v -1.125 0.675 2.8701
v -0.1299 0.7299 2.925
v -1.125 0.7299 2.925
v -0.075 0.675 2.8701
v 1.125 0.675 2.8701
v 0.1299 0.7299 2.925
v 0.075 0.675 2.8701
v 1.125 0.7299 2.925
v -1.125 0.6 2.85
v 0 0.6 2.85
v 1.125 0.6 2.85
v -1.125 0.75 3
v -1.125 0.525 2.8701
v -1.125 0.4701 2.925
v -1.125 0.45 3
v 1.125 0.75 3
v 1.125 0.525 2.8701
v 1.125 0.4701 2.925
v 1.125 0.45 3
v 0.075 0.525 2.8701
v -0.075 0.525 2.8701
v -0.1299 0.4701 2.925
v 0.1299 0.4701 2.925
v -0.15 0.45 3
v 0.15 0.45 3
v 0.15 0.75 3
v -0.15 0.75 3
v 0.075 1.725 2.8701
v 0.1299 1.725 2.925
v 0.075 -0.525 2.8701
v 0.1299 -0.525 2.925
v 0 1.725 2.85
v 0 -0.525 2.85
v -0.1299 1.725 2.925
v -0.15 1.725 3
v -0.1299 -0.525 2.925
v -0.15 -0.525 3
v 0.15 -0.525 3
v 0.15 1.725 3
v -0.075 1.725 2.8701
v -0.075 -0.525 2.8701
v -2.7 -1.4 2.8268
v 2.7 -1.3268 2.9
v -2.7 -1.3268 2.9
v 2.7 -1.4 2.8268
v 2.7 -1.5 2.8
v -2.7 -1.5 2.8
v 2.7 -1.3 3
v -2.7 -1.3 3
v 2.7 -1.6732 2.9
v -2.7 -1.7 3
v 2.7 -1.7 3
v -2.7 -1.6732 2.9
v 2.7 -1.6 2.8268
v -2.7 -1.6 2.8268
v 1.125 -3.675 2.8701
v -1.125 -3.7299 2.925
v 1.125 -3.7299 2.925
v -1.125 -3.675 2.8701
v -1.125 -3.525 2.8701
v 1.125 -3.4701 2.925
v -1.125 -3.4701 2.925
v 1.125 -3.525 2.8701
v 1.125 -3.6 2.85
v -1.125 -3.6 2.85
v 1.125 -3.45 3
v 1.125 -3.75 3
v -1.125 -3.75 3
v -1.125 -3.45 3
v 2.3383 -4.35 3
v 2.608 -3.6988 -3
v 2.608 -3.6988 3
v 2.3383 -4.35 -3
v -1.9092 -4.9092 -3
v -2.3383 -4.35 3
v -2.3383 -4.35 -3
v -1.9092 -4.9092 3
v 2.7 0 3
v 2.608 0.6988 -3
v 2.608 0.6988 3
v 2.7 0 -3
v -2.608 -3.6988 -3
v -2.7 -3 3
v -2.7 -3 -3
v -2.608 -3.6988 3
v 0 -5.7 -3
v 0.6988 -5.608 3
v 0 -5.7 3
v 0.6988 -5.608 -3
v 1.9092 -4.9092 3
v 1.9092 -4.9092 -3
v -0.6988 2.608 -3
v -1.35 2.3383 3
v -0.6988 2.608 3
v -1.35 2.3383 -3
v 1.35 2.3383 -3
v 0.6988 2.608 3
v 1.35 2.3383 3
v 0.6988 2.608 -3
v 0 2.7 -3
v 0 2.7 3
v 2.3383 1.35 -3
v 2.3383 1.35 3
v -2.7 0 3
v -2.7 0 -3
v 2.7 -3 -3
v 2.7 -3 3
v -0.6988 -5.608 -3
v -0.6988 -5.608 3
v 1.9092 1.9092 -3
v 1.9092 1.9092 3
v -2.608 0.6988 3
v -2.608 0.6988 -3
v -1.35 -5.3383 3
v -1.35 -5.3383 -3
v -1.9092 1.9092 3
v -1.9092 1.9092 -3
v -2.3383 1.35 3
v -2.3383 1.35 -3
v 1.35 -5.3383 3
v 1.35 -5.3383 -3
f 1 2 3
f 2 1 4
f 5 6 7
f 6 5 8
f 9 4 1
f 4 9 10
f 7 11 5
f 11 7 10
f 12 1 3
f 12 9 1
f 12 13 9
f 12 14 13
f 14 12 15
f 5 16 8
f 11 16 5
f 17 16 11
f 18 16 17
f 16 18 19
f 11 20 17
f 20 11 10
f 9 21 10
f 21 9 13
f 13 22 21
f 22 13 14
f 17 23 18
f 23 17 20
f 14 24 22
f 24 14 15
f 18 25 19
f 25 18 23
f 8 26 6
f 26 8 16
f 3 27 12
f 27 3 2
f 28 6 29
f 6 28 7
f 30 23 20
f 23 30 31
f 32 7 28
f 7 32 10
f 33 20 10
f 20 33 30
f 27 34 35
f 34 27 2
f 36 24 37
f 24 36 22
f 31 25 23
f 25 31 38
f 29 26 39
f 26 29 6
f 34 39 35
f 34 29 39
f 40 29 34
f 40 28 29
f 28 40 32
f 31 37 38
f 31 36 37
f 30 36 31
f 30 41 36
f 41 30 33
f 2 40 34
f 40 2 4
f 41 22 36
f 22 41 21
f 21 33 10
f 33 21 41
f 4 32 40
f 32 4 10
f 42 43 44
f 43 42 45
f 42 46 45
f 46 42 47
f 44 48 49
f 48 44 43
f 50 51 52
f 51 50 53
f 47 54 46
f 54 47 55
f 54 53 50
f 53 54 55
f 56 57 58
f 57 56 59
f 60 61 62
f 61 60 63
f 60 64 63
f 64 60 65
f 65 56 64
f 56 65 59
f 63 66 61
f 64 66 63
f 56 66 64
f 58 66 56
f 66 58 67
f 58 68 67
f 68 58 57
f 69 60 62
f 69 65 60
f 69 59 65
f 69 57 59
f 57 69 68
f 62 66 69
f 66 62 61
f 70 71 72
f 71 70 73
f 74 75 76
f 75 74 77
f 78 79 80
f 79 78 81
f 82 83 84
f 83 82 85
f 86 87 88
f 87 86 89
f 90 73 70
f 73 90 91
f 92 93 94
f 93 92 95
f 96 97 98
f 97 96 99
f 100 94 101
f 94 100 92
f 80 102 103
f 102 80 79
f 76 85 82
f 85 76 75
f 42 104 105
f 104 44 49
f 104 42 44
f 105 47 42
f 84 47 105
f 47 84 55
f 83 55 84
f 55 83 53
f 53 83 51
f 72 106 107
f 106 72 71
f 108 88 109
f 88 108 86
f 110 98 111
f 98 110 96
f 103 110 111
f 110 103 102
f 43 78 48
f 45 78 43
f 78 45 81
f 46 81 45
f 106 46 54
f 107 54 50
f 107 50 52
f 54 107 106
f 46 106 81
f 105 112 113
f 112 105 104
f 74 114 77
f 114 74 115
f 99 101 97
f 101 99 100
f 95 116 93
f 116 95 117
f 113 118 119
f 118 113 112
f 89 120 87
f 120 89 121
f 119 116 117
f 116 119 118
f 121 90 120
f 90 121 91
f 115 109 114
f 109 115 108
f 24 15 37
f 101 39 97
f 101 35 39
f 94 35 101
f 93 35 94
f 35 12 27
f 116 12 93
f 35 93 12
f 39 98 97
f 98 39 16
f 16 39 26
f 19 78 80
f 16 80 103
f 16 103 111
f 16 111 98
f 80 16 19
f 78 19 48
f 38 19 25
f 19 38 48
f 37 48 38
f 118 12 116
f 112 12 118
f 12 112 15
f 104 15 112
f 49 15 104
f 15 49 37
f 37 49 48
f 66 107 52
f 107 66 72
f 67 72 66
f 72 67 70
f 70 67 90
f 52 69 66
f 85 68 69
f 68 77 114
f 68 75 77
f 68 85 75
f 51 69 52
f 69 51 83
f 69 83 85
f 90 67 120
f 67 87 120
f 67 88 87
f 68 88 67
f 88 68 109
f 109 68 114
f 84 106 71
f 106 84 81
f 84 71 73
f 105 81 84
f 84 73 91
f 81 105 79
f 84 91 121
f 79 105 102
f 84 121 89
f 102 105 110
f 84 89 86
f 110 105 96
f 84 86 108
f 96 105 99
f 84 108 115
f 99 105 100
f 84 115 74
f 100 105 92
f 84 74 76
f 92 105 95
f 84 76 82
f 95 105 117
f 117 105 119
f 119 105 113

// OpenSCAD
$side_button_radius = 5.4 / 2;
$button_depth = 6;

$full_length = ($side_button_radius * 2) + 3;
$cut_radius = 0.15;

module cutouts(){
  rotate([0, 90, 0]){
    cylinder(h = 10, r = 0.2, $fn = 12, center=true);

    translate([0,-($full_length / 4),0])
      cylinder(h = $side_button_radius / 1.2, r = $cut_radius, $fn = 12, center=true);

    translate([0,($full_length / 4),0]){
      cylinder(h = $side_button_radius / 1.2, r = $cut_radius, $fn = 12, center=true);
      rotate([90, 0, 0])
        cylinder(h = $side_button_radius / 1.2, r = $cut_radius, $fn = 12, center=true);
    }
  }
}

difference(){
hull(){
  cylinder(h=$button_depth, r=$side_button_radius, center = true, $fn=24);
    translate([0,-3,0])
      cylinder(h=$button_depth, r=$side_button_radius, center = true, $fn=24);
}

translate([0,-1.5, ($button_depth / 2)])
  cutouts();
}
